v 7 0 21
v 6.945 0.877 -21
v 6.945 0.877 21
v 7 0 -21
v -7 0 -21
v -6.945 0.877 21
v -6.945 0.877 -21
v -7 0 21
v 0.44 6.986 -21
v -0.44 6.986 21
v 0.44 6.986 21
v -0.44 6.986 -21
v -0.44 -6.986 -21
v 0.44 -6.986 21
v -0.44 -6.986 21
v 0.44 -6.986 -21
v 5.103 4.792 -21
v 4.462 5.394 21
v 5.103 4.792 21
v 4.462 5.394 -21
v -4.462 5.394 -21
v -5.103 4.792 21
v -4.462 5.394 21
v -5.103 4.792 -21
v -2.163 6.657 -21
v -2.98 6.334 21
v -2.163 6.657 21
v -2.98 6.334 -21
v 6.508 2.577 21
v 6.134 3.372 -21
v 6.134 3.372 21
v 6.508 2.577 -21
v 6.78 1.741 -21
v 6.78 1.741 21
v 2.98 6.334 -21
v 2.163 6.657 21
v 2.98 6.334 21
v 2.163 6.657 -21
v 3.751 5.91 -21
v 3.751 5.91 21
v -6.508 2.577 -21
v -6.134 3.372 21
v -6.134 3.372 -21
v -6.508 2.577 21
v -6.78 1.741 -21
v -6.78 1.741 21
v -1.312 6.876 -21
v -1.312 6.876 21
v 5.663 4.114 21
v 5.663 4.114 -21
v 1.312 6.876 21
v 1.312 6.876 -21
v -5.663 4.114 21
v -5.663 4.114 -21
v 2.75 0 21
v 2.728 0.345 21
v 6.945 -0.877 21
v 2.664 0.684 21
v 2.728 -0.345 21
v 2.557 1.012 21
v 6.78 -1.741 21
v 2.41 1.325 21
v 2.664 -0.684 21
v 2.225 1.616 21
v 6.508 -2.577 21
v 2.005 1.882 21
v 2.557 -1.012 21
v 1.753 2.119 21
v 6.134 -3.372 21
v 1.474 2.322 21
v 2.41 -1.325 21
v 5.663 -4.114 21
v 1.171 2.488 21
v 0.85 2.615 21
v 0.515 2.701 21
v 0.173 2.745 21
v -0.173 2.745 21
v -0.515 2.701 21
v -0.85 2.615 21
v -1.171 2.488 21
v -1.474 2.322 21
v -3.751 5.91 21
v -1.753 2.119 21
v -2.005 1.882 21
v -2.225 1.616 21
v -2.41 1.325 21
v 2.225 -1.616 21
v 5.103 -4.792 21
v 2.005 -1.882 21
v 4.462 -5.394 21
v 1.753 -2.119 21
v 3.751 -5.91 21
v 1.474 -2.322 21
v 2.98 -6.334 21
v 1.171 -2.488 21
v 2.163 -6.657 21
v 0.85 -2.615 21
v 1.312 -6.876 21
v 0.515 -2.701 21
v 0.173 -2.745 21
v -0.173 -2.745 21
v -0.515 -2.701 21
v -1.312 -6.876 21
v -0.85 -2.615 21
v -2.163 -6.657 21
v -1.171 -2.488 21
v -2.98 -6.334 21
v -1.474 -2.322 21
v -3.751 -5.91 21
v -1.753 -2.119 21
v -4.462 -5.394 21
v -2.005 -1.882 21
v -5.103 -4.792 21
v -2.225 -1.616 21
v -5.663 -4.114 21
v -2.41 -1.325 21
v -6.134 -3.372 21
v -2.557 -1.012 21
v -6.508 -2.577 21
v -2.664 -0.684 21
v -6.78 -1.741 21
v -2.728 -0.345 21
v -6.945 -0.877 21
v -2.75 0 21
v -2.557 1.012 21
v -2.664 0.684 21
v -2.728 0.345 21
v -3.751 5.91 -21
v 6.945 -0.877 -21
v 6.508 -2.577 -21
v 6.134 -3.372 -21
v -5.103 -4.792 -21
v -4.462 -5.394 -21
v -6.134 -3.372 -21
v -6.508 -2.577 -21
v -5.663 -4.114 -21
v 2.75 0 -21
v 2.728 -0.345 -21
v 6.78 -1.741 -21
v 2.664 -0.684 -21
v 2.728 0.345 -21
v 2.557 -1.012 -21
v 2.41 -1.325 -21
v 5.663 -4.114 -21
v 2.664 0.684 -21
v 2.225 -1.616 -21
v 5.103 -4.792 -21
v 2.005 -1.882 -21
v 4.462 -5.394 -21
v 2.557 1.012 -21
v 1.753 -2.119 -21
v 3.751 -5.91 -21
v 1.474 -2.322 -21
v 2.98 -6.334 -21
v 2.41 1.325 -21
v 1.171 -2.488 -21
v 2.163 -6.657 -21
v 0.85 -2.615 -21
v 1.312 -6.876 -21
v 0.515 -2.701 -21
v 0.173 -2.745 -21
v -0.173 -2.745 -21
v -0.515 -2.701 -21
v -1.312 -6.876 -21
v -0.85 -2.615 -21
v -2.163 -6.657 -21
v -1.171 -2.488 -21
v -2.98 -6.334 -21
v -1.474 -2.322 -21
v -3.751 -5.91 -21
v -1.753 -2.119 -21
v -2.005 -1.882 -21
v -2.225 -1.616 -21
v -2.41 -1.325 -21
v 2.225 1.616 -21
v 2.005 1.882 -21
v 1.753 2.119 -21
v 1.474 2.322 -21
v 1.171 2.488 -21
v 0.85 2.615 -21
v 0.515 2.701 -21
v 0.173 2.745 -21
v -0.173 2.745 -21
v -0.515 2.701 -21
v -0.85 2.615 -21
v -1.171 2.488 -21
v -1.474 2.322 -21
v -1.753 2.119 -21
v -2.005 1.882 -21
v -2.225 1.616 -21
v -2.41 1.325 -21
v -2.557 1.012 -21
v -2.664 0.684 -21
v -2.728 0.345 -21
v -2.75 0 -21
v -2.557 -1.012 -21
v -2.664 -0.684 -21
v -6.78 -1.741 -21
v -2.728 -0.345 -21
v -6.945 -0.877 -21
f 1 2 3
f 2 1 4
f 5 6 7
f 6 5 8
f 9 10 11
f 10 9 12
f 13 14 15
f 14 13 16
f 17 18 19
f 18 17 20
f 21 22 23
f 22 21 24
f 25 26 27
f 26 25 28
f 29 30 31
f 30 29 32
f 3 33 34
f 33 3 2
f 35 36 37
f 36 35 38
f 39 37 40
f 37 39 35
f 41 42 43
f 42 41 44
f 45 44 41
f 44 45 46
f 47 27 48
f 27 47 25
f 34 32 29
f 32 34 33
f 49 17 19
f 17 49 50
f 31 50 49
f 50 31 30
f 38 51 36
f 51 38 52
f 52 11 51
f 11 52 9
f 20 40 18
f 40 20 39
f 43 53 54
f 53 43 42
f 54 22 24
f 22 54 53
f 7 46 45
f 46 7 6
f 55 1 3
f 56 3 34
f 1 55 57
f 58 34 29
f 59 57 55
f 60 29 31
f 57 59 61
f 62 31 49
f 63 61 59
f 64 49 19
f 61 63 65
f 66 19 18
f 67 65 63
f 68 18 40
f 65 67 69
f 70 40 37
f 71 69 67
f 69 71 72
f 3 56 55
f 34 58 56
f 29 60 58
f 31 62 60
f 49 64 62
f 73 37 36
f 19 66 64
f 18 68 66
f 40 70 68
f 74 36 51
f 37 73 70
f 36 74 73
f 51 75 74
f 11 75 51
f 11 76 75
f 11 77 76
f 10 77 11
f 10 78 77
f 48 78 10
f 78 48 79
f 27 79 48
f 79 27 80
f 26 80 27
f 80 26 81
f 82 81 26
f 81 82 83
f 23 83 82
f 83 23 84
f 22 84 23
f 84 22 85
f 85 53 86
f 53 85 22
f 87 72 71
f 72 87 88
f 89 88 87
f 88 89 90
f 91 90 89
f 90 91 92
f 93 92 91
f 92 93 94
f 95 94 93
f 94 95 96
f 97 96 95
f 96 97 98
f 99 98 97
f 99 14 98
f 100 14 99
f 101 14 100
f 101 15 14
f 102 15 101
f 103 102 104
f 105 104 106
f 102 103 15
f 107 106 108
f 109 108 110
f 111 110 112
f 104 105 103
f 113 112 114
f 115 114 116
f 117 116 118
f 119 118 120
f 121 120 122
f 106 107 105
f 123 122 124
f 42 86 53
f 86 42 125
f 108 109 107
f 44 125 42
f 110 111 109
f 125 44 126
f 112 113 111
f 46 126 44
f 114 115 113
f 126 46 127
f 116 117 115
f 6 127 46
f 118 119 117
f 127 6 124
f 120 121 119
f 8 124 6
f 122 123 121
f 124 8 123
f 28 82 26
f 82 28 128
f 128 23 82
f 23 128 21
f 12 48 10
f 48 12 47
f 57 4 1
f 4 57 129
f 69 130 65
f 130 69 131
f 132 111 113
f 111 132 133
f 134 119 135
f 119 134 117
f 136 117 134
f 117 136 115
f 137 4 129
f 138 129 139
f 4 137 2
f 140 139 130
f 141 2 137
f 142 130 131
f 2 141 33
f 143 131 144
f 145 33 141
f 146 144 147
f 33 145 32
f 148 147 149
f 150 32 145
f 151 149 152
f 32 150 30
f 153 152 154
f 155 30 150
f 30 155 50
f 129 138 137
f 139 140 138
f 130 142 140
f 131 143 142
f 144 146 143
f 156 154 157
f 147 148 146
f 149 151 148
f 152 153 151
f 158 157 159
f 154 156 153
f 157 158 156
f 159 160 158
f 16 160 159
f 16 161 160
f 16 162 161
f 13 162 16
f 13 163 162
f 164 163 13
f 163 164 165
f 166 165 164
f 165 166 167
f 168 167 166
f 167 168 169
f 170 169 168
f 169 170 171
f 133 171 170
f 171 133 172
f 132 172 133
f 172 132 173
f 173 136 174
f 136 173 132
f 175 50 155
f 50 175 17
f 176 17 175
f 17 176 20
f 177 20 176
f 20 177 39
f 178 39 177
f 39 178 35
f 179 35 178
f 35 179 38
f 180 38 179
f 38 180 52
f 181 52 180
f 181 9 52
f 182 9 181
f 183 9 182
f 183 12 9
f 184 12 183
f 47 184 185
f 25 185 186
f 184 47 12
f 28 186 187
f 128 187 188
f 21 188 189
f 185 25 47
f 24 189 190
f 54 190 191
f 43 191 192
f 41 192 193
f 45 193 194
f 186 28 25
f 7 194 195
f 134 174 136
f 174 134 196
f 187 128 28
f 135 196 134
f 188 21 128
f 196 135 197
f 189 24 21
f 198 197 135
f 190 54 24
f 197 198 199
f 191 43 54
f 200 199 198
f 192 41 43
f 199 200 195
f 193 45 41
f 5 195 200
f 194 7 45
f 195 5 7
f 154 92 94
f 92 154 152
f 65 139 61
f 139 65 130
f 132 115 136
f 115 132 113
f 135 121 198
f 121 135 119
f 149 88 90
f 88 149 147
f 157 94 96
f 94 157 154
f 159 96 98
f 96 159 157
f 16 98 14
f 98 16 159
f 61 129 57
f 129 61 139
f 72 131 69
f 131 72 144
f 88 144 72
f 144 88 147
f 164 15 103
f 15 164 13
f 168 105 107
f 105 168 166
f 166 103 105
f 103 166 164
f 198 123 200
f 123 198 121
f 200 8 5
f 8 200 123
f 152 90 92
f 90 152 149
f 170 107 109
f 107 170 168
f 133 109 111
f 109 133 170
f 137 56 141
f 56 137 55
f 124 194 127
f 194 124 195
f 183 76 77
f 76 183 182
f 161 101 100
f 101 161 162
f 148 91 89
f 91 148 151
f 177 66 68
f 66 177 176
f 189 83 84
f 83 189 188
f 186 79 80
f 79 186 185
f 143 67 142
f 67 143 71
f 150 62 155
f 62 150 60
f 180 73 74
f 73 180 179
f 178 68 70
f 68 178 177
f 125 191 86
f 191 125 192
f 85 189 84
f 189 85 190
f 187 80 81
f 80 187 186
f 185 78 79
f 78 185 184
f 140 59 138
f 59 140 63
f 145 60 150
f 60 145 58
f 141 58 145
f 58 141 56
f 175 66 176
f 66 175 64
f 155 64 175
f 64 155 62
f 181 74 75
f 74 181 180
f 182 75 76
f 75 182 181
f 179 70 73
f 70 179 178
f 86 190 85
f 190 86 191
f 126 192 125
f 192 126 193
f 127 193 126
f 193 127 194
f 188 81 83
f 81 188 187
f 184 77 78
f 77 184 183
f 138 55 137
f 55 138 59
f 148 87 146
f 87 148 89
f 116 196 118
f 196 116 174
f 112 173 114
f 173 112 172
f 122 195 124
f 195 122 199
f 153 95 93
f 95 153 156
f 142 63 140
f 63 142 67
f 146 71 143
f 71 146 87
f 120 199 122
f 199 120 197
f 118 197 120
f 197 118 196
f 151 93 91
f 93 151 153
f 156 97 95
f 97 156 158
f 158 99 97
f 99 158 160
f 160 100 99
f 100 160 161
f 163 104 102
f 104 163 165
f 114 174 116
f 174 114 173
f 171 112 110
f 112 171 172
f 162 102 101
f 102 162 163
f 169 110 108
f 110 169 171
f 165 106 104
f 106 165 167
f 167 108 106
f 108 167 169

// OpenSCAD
$fn = 50;


difference() {
	union() {
		translate(v = [0, 0, -21.0000000000]) {
			cylinder(h = 42, r = 7.0000000000);
		}
	}
	union() {
		translate(v = [0, 0, -100.0000000000]) {
			cylinder(h = 200, r = 2.7500000000);
		}
	}
}
